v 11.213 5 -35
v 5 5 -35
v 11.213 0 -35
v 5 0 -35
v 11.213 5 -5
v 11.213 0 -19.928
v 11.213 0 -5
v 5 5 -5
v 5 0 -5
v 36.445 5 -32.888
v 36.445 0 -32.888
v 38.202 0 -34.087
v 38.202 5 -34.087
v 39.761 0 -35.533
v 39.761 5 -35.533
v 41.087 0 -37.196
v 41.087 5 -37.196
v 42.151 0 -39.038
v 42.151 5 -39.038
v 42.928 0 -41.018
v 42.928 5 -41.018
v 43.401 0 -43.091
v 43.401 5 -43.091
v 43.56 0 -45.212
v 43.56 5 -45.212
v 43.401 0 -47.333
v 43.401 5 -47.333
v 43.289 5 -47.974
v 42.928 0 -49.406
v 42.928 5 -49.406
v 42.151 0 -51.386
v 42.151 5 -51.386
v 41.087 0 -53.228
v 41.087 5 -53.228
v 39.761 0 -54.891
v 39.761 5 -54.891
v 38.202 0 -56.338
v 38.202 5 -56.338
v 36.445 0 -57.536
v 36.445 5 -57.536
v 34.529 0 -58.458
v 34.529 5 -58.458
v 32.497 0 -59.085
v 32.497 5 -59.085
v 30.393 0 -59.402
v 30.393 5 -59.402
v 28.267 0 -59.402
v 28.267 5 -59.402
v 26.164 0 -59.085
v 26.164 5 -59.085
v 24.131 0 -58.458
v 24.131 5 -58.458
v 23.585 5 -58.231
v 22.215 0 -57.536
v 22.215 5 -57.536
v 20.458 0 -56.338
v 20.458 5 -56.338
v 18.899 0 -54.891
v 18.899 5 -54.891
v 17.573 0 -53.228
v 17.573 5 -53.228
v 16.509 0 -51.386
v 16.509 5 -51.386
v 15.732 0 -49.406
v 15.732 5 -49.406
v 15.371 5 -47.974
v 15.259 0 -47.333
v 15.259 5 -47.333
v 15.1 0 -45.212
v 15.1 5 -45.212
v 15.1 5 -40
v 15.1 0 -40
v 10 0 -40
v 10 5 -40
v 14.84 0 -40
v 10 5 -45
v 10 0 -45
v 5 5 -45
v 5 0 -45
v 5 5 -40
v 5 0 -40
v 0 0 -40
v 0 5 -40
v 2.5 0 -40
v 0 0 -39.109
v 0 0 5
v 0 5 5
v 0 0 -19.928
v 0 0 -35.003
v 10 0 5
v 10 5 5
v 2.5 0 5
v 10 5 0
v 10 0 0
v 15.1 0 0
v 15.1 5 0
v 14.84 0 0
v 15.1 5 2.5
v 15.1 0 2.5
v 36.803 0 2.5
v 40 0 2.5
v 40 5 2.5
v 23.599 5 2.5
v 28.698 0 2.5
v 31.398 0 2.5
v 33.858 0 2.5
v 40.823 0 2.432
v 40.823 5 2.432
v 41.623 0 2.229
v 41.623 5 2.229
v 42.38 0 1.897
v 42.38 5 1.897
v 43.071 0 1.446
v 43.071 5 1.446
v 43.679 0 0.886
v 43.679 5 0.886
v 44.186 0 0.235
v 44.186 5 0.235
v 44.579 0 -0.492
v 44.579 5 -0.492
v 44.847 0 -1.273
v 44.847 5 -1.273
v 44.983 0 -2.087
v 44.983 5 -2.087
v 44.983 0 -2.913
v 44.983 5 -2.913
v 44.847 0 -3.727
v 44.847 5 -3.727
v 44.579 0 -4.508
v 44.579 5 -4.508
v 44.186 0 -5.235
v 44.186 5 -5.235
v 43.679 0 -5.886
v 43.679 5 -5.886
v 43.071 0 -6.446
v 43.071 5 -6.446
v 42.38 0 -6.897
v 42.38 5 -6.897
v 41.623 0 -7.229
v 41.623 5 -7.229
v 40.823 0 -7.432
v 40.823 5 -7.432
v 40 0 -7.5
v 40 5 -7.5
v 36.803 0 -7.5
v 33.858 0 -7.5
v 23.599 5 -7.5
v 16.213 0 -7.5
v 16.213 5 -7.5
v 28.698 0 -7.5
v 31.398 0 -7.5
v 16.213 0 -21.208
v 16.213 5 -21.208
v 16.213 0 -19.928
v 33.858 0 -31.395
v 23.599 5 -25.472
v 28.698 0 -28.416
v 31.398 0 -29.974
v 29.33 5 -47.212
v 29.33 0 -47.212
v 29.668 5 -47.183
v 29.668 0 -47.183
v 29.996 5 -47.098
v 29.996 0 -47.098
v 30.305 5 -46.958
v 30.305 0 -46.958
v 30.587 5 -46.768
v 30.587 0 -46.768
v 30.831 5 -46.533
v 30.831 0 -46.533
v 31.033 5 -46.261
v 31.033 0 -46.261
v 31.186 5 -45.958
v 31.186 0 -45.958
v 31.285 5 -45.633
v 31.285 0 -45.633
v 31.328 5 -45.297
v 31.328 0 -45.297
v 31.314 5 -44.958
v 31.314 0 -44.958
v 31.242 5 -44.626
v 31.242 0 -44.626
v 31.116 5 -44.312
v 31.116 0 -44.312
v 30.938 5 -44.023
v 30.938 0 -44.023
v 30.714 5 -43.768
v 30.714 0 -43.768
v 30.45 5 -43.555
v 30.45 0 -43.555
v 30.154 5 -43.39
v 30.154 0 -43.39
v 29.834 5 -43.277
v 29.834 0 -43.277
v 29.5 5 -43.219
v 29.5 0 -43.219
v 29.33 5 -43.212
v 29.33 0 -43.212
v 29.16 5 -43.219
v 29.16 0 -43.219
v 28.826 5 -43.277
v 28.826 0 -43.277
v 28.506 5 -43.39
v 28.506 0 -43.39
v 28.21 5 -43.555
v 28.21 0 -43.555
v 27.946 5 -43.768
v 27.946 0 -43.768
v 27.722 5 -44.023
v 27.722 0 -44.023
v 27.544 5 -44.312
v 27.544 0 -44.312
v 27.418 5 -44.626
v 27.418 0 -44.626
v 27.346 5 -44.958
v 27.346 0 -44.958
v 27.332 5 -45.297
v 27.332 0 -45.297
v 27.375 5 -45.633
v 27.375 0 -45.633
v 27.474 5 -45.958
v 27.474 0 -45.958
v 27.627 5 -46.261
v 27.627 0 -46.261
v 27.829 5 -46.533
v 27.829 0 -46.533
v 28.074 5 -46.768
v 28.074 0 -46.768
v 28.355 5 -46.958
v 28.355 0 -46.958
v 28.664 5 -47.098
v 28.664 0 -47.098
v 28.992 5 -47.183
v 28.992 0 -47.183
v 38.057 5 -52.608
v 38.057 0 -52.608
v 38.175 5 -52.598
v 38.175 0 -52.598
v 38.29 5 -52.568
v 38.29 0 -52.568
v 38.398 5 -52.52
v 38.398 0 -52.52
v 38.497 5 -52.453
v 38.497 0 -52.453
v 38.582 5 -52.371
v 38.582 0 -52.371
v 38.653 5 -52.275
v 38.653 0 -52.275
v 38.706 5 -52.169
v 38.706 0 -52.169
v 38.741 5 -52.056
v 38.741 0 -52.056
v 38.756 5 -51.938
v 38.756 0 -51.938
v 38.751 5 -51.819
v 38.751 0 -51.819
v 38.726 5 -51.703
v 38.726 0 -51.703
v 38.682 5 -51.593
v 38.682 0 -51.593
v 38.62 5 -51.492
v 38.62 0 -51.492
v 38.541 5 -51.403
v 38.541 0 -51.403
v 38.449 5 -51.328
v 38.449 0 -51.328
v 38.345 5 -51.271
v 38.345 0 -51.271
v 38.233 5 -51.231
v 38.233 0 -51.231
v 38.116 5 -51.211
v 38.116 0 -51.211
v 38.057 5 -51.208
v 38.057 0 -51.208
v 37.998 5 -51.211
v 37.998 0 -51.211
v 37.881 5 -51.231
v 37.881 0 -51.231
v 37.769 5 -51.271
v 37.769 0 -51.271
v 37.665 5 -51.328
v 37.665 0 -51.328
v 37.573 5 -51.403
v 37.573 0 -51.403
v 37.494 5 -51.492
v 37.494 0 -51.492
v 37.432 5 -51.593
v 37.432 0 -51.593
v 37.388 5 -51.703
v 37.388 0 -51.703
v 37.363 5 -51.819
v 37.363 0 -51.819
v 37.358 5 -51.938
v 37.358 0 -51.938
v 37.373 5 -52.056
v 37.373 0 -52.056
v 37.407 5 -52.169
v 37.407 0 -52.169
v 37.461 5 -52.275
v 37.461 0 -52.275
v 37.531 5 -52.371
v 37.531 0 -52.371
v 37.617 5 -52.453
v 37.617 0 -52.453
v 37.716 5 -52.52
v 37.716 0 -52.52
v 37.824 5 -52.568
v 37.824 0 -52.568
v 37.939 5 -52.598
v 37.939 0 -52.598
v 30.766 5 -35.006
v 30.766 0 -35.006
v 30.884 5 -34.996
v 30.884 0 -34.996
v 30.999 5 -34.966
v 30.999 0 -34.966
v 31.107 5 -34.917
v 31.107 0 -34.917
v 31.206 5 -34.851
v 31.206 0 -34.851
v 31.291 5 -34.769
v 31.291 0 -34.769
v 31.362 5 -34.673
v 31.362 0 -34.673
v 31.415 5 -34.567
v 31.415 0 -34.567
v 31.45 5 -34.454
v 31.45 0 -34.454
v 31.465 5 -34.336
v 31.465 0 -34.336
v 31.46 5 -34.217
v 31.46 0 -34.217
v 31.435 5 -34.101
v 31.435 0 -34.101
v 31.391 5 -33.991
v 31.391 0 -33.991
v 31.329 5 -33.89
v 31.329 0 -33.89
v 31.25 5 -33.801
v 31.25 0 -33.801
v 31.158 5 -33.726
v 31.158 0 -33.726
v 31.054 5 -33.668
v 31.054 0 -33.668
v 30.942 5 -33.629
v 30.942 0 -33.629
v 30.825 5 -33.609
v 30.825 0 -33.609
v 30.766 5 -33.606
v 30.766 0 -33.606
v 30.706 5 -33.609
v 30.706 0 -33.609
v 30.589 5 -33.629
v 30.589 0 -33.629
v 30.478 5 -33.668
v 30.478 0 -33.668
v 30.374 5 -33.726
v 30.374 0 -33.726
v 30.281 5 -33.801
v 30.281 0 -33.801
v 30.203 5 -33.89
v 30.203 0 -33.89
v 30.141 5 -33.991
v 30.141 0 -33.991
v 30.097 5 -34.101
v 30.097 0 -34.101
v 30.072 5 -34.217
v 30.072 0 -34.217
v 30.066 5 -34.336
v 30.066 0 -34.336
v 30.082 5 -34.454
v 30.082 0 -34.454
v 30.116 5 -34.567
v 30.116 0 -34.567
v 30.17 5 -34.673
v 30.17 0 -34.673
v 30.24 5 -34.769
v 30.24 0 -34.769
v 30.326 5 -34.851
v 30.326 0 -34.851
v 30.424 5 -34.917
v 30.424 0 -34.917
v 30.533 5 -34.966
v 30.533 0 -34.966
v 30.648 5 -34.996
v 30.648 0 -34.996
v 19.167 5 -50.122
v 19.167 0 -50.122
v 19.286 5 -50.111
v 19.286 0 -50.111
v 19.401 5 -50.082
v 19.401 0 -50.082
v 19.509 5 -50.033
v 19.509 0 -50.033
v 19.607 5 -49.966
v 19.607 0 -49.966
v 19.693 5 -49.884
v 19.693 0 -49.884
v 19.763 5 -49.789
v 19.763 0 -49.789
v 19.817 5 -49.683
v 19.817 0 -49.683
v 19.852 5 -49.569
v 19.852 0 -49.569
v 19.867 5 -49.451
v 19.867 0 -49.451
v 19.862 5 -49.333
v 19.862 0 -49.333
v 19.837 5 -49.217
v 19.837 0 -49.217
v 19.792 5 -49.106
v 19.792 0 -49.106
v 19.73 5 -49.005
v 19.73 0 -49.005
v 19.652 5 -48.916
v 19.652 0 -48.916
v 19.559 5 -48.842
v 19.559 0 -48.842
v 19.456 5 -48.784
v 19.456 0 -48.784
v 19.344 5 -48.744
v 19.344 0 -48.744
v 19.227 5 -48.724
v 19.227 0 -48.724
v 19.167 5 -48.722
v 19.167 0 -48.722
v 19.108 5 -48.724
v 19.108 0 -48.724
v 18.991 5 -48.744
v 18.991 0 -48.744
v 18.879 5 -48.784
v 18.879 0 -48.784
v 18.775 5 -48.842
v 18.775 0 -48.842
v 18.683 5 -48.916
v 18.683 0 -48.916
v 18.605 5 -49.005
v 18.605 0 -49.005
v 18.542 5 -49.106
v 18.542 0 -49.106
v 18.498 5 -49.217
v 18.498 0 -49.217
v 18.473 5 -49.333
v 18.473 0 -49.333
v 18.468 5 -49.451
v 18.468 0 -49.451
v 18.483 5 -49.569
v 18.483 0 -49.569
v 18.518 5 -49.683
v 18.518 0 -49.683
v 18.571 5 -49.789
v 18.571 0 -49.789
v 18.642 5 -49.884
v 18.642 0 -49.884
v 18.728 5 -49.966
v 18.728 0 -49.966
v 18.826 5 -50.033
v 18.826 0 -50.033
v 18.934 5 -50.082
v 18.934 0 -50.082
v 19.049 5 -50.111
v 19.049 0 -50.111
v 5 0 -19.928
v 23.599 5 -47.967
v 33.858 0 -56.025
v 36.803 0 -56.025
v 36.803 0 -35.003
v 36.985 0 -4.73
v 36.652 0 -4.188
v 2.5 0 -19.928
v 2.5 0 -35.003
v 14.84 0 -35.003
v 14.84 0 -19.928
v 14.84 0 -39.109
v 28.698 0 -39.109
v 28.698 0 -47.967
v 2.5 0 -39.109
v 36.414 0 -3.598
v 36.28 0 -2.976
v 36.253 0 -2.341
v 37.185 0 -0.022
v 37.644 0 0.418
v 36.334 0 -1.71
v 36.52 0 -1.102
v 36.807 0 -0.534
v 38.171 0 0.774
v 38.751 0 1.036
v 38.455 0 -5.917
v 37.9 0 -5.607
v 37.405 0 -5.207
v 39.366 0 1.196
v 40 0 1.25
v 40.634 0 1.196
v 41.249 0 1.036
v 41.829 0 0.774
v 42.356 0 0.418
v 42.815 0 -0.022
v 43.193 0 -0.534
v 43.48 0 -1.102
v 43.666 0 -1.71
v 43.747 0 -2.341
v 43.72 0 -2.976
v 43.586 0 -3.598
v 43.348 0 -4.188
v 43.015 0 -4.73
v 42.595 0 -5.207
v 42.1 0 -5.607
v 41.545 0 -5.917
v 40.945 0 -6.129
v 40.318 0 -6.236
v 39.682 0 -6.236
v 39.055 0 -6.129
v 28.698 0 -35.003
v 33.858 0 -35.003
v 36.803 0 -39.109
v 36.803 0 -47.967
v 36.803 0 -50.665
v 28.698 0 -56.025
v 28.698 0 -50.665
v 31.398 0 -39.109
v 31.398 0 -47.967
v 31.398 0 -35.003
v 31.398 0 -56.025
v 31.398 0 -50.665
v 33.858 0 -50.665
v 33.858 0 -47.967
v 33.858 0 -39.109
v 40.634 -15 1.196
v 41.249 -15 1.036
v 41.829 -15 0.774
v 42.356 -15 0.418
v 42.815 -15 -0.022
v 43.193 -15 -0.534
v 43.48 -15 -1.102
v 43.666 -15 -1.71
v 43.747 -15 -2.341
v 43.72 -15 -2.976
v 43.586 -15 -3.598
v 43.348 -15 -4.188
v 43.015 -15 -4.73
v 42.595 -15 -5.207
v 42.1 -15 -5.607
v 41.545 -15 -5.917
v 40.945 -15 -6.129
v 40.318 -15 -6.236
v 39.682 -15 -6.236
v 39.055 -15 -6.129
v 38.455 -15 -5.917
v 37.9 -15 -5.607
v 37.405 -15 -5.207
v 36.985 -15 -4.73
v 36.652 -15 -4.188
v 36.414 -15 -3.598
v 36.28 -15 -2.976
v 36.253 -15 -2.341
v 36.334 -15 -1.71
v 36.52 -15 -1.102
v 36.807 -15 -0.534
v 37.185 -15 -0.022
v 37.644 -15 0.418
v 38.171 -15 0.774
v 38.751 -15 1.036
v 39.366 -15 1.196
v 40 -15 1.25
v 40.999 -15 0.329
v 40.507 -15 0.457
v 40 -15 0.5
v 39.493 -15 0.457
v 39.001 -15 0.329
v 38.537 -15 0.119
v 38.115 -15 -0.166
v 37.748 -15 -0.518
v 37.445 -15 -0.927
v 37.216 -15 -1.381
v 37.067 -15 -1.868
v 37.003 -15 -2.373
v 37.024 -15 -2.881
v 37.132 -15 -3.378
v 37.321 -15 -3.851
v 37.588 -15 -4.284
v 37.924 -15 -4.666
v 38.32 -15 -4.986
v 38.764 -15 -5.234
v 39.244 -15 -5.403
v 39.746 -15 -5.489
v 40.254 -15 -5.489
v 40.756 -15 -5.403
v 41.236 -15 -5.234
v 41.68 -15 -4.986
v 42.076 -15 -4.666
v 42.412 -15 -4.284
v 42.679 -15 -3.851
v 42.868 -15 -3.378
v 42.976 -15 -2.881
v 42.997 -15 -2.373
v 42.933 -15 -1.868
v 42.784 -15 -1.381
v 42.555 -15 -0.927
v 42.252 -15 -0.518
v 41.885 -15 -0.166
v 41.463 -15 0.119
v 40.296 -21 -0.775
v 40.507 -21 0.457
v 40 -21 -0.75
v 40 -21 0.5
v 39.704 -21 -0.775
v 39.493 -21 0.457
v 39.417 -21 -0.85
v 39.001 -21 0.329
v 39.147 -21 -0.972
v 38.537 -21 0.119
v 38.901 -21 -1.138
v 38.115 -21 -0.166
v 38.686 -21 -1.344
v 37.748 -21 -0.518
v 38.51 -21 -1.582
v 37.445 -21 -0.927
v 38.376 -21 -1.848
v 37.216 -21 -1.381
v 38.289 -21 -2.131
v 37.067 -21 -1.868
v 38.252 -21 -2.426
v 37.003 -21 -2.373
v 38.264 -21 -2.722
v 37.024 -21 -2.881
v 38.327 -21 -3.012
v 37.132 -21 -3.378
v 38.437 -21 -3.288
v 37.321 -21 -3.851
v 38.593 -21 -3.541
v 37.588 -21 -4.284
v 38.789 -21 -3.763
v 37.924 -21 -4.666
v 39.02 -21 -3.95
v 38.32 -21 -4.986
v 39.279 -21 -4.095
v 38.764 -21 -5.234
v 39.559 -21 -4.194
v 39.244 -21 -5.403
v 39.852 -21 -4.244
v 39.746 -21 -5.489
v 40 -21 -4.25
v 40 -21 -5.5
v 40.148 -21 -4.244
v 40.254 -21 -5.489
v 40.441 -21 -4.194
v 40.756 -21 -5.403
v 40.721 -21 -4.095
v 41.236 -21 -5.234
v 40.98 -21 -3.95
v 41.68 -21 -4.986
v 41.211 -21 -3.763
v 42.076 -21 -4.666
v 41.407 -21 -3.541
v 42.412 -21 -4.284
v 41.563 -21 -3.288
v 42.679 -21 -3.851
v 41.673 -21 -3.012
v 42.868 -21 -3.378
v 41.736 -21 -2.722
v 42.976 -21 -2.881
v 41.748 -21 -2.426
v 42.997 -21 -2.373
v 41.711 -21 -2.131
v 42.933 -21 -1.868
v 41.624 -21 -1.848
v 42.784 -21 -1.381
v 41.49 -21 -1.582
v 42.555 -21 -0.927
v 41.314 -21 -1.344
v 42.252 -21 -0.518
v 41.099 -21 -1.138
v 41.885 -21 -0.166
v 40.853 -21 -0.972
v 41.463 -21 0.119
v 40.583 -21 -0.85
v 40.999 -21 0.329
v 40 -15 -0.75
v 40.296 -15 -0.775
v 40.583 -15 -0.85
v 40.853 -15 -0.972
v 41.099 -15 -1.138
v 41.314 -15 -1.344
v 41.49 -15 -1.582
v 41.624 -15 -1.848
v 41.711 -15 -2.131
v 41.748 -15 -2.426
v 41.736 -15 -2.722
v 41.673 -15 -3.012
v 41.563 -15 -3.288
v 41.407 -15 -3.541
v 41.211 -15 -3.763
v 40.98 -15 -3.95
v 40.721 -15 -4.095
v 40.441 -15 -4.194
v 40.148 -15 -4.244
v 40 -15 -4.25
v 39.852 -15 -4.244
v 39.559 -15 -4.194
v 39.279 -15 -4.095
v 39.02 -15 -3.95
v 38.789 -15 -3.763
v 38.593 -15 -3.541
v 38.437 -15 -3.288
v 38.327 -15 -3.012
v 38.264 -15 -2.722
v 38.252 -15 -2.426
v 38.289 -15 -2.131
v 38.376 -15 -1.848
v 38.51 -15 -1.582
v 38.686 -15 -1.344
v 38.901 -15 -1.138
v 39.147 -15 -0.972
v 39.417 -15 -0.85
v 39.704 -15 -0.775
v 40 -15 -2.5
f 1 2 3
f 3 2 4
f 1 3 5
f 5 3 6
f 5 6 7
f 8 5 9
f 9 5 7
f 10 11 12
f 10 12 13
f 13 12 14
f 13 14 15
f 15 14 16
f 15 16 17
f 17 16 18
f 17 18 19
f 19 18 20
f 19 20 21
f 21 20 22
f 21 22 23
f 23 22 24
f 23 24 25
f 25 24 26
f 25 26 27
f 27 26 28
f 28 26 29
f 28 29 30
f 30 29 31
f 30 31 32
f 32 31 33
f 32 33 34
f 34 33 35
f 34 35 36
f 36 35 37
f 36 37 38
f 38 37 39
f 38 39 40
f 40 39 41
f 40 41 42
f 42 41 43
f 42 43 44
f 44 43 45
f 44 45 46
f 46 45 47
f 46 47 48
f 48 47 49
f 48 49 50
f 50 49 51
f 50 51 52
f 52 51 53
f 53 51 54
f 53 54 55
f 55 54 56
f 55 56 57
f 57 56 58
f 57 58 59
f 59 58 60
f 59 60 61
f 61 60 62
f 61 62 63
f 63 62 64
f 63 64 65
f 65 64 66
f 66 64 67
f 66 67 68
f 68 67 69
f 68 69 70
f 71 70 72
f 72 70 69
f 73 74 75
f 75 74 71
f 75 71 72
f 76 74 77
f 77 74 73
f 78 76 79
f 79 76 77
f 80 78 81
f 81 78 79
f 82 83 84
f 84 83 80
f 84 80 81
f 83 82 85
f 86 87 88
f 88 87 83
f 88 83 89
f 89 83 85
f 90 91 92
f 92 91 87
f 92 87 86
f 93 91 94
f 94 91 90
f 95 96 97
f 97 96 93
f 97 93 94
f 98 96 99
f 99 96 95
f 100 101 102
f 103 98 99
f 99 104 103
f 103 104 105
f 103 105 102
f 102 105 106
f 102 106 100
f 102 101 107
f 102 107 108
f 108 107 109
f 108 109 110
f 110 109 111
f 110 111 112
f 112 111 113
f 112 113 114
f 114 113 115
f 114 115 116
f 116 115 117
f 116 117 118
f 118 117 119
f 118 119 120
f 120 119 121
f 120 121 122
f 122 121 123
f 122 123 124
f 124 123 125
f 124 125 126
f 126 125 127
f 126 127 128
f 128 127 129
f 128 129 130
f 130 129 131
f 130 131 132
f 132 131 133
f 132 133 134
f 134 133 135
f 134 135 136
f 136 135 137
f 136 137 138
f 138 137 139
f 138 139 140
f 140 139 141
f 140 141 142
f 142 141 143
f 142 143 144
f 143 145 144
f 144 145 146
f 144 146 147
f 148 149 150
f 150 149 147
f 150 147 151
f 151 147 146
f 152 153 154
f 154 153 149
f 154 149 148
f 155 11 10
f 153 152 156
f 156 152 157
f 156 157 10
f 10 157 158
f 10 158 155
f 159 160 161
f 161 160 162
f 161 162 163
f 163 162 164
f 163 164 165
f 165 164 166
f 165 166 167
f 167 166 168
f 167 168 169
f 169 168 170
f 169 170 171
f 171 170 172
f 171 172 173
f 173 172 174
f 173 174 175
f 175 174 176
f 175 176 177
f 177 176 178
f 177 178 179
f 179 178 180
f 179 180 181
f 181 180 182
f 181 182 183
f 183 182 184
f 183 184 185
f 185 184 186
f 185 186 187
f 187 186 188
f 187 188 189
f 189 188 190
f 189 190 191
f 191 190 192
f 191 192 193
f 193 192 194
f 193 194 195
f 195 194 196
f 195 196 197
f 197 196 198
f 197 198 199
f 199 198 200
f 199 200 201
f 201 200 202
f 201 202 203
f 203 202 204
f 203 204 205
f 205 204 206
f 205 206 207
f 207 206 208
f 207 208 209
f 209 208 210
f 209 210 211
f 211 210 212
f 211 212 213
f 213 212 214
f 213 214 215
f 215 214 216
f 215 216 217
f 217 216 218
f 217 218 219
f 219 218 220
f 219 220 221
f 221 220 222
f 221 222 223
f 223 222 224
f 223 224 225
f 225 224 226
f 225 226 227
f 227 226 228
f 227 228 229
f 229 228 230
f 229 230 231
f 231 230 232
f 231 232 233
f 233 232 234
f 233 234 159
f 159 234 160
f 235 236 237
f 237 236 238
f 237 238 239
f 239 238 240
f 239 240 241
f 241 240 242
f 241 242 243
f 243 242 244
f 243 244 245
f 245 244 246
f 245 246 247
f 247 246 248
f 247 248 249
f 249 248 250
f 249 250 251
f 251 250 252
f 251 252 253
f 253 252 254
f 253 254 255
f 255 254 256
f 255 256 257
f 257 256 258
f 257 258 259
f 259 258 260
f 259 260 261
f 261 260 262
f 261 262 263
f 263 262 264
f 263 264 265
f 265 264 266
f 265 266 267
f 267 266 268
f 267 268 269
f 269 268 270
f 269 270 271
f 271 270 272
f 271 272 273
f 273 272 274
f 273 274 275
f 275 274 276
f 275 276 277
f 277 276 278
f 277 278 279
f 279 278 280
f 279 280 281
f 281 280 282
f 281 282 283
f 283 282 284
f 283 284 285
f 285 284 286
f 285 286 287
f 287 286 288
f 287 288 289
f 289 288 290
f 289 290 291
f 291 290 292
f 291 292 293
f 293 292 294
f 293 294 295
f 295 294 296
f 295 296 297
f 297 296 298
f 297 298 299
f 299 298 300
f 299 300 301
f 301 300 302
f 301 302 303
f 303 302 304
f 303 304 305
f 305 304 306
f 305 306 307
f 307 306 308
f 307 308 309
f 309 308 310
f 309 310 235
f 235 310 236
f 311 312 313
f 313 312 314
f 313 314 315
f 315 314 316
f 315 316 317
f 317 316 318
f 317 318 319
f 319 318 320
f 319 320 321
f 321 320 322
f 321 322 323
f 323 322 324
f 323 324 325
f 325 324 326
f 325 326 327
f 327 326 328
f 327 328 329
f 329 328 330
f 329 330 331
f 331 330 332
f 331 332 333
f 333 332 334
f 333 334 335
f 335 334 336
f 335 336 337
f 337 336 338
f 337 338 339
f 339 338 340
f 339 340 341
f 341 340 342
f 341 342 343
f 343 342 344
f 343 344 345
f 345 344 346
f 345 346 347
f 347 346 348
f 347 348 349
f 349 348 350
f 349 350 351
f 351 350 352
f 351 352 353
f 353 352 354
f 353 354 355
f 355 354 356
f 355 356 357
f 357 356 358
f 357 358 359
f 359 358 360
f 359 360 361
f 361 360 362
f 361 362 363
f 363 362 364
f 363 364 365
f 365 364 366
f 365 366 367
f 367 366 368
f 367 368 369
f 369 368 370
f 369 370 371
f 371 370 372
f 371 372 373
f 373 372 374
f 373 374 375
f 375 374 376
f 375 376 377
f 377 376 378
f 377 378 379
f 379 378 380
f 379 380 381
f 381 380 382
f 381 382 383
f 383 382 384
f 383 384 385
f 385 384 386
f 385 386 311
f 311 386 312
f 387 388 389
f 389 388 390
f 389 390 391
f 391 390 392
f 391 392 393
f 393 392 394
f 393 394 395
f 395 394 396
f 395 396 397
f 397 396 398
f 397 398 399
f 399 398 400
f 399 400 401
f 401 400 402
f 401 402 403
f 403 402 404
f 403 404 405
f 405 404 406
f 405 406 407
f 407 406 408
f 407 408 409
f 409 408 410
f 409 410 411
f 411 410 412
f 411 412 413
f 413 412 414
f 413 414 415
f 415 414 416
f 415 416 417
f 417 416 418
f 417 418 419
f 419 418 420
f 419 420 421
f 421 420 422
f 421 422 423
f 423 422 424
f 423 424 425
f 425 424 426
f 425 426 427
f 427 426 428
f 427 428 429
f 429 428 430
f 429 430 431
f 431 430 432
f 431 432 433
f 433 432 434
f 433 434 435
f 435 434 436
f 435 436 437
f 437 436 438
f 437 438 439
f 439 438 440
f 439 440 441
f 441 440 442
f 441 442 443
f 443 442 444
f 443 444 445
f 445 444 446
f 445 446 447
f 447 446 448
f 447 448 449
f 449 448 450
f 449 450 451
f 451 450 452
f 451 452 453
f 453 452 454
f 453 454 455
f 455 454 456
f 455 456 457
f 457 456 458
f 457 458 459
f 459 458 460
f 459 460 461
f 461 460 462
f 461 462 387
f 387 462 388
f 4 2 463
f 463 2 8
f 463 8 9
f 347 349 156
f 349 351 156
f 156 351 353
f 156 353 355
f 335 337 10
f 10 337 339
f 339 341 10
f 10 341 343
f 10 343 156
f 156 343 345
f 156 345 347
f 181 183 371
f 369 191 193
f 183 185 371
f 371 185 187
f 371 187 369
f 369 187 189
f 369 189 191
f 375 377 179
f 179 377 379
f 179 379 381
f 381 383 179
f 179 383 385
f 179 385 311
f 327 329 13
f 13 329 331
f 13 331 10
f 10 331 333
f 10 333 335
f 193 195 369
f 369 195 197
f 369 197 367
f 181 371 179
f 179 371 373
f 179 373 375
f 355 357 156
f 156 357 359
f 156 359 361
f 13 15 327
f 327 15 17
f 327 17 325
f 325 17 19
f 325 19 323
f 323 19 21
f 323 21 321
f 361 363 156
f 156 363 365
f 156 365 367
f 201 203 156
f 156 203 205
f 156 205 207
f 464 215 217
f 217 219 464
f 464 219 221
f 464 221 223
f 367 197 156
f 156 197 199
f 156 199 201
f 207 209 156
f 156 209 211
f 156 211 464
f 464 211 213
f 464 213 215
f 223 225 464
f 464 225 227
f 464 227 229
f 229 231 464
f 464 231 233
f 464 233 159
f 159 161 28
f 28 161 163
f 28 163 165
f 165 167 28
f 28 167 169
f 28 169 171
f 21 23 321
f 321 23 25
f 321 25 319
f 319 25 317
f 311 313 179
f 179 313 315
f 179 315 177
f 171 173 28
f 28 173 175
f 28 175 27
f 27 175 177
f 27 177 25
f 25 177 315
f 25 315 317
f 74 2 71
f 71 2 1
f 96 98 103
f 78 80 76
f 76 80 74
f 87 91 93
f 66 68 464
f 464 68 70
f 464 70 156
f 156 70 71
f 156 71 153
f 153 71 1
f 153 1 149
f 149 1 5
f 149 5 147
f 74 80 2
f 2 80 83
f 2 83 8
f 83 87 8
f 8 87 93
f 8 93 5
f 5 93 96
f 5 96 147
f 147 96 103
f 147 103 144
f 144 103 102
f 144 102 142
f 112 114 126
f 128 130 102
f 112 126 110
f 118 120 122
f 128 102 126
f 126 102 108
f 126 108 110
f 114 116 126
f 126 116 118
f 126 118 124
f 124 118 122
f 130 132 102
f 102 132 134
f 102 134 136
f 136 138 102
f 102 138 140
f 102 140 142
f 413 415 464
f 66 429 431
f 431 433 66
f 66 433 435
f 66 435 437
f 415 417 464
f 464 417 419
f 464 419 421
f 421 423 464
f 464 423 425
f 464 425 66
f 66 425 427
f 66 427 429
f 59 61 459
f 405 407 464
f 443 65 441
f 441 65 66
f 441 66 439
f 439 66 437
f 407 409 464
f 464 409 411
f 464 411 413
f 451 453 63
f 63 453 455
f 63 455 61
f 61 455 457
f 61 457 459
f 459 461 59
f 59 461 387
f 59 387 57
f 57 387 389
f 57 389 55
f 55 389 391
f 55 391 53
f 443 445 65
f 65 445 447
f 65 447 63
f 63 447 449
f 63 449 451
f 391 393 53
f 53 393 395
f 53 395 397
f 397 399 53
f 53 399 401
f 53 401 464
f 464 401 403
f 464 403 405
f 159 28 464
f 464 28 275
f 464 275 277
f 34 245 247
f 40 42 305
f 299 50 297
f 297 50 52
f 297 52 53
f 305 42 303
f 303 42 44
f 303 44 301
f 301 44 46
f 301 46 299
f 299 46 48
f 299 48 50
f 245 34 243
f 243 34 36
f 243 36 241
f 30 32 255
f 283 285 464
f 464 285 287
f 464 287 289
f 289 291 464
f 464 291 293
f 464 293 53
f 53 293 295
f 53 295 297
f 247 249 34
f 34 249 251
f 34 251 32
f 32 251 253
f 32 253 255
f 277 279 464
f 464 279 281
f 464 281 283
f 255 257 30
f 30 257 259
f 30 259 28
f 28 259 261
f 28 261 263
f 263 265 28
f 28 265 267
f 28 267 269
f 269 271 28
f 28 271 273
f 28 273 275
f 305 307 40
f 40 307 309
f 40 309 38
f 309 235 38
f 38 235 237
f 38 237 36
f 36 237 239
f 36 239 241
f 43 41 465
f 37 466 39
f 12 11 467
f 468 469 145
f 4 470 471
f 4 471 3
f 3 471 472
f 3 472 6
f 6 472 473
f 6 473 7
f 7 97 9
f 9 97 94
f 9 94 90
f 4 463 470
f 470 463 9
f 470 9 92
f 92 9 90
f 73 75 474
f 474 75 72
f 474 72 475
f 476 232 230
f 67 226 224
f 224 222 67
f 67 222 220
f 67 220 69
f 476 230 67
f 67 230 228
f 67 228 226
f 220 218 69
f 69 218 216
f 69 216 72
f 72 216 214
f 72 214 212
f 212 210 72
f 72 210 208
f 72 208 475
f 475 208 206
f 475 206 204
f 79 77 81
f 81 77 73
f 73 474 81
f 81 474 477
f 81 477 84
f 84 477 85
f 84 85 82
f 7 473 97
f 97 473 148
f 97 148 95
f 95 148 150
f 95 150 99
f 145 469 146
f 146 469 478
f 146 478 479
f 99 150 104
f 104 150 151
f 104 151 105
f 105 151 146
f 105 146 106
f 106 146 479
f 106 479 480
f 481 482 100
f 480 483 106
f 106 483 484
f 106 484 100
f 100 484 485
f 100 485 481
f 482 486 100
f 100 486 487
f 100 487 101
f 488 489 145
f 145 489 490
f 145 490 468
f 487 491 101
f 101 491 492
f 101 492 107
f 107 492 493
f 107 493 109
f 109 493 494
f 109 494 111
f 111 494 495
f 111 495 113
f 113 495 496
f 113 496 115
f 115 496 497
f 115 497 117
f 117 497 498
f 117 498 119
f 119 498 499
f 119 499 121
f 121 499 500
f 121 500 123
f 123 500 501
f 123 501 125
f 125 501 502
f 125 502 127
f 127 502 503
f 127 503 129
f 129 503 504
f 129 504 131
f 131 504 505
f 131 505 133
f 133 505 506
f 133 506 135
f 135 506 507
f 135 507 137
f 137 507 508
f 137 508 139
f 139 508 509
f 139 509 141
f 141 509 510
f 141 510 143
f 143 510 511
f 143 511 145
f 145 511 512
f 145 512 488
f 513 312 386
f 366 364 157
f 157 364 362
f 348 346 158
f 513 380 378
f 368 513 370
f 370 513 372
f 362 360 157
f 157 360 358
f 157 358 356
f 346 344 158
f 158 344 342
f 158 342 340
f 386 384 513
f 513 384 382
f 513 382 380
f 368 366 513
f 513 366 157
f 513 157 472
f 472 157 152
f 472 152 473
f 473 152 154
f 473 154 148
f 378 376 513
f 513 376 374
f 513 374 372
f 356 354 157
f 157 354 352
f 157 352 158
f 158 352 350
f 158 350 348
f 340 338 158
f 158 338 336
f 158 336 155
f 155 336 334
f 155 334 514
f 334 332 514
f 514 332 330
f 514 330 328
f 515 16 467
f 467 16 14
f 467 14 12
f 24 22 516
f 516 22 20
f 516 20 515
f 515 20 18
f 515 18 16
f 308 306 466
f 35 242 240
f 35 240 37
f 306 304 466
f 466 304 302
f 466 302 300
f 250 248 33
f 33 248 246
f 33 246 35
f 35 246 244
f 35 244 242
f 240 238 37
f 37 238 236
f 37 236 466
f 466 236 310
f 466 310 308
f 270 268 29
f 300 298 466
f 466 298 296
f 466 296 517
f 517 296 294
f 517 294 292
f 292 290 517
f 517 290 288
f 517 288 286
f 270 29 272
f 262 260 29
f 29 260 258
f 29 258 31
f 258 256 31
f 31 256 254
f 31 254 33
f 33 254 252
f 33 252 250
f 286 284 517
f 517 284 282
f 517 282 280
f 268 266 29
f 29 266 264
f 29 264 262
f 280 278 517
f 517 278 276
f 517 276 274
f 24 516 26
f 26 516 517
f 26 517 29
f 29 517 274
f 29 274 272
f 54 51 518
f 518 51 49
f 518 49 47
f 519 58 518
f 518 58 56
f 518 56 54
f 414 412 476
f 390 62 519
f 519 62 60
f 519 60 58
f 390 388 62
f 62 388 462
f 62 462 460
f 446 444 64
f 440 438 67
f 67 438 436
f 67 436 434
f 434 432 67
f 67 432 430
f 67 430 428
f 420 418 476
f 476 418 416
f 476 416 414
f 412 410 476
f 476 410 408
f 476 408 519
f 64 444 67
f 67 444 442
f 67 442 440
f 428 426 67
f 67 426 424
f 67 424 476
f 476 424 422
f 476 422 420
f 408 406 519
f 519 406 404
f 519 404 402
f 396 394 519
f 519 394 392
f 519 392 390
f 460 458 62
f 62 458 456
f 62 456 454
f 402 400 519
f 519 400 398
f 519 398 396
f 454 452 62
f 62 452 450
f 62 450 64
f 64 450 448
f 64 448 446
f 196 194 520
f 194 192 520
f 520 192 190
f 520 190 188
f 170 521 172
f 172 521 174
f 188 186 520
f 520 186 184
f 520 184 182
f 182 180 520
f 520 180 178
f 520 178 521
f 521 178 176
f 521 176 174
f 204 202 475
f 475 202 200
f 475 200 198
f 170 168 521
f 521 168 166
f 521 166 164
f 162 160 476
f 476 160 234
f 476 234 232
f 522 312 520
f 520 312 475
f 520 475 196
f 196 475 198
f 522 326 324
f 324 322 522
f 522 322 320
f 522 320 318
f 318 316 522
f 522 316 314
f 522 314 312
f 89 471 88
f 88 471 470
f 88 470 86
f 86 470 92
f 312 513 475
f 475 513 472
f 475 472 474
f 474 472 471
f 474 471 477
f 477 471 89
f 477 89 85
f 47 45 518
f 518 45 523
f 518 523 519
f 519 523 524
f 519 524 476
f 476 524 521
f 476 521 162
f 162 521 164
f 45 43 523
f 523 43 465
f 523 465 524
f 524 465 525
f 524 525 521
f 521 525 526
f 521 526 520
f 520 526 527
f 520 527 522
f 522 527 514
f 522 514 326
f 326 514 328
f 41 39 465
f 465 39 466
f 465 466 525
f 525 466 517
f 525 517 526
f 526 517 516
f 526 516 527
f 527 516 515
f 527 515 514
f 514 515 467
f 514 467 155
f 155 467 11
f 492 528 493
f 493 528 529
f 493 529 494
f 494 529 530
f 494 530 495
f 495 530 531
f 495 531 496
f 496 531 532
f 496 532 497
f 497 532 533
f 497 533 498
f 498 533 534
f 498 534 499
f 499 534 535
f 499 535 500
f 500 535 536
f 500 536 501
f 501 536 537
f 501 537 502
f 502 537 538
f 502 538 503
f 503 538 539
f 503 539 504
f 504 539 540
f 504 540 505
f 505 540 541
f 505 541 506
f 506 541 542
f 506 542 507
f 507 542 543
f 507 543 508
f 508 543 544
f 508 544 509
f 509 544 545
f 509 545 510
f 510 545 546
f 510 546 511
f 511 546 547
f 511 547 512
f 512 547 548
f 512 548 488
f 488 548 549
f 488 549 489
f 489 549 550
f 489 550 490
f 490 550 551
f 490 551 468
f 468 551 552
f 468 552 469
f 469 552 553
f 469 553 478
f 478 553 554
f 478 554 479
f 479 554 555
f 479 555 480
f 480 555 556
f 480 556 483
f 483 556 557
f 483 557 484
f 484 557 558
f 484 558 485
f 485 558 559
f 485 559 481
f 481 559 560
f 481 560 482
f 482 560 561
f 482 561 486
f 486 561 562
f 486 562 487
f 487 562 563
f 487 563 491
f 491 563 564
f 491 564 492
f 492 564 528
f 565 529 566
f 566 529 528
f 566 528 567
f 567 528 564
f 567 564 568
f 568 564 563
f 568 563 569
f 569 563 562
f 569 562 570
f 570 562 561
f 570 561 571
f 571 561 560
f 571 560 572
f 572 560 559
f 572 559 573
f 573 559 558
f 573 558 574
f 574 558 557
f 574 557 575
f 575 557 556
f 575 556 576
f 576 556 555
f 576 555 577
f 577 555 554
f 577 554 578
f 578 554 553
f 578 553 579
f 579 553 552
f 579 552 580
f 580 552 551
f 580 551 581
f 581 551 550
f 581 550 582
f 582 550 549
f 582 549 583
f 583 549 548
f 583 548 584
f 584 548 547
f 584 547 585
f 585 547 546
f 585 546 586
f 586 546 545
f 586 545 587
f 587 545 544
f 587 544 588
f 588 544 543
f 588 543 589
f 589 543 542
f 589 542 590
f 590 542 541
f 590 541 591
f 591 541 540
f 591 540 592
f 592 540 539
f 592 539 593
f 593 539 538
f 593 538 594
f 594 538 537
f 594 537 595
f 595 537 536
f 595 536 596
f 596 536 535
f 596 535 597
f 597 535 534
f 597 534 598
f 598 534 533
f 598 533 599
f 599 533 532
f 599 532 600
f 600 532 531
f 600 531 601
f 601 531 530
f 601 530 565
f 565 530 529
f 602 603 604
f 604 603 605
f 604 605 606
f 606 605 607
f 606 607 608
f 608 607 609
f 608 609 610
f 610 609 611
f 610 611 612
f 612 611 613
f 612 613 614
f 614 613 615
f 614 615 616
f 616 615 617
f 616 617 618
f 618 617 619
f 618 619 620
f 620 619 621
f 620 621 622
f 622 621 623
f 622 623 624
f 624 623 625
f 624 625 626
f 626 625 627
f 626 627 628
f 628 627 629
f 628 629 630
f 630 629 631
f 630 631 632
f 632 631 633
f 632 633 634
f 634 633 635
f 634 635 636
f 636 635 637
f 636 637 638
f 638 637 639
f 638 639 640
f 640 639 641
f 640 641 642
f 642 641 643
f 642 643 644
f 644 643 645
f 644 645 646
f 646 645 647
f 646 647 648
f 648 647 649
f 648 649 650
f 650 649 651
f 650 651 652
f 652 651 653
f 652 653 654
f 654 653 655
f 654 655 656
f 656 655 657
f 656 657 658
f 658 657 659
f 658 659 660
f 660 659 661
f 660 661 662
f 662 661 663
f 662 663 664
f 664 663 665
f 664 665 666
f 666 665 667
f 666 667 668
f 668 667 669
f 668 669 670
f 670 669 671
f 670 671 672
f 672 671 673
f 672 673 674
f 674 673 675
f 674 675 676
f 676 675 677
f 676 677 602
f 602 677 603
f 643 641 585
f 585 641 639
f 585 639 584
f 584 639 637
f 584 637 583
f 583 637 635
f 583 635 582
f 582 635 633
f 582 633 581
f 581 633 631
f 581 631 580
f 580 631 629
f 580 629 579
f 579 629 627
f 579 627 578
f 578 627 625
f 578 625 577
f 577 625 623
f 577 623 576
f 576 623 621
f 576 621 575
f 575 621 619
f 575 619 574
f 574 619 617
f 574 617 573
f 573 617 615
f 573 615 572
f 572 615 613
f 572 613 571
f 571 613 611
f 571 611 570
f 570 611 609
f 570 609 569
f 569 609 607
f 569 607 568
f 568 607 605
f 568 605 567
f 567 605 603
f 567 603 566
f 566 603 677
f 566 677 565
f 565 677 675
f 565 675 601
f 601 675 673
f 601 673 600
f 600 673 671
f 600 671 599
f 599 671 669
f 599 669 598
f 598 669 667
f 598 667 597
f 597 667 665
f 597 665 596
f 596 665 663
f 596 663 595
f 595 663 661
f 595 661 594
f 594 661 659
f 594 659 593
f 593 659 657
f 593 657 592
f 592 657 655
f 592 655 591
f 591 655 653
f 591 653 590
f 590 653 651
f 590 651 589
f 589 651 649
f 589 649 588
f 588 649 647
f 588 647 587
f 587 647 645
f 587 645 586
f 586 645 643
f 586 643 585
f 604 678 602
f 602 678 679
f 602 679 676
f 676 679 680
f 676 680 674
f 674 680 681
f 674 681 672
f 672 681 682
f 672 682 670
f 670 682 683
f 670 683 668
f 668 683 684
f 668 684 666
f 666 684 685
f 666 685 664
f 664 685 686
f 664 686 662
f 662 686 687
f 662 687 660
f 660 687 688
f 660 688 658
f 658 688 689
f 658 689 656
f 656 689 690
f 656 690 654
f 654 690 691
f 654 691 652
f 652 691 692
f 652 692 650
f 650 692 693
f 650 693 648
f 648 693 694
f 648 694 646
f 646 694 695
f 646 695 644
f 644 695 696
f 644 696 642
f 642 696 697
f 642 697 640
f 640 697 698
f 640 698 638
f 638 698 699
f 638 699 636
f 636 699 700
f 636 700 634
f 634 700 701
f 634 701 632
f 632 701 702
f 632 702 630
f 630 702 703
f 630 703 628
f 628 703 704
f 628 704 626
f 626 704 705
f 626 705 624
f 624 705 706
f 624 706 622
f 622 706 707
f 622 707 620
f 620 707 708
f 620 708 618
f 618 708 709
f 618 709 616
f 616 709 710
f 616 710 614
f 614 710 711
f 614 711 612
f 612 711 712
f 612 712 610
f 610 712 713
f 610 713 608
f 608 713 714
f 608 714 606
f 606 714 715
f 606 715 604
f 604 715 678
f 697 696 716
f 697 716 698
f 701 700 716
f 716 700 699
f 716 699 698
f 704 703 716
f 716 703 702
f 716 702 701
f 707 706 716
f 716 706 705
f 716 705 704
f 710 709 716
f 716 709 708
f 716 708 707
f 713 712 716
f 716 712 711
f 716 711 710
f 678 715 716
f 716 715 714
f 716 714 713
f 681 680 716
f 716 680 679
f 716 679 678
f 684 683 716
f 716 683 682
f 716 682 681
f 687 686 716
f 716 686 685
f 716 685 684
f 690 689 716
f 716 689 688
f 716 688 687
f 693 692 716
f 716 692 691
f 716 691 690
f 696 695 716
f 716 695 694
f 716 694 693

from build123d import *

# Parameters (mm, degrees)
SKETCH2_W           = 6.21325809
SKETCH2_H           = 30
SKETCH2_R           = 0.7
SKETCH2_R_2         = 2
BOSS_EXTRUDE1_DEPTH = 5
SKETCH3_R           = 3.75
BOSS_EXTRUDE2_DEPTH = 20
SKETCH4_R           = 3
SKETCH4_R_2         = 1.75
BOSS_EXTRUDE3_DEPTH = 6


with BuildPart() as part:
    # Sketch2 → Boss-Extrude1 (new body)
    with BuildSketch(Plane(origin=(0, 0, 0), x_dir=(1, 0, 0), z_dir=(0, 1, 0))):
        with BuildLine():
            Line((16.21325809, 7.5), (16.21325809, 21.207579156))
            Line((16.21325809, 21.207579156), (36.445096698, 32.888436623))
            ThreePointArc((36.445096698, 32.888436623), (36.445096698, 57.535631272), (15.1, 45.212033947))
            Line((15.1, 45.212033947), (15.1, 40))
            Line((15.1, 40), (10, 40))
            Line((10, 40), (10, 45))
            Line((10, 45), (5, 45))
            Line((5, 45), (5, 40))
            Line((5, 40), (0, 40))
            Line((0, 40), (0, -5))
            Line((0, -5), (10, -5))
            Line((10, -5), (10, 0))
            Line((10, 0), (15.1, 0))
            Line((15.1, 0), (15.1, -2.5))
            Line((15.1, -2.5), (40, -2.5))
            ThreePointArc((40, -2.5), (45, 2.5), (40, 7.5))
            Line((40, 7.5), (16.21325809, 7.5))
        make_face()
        with Locations((8.106629045, 20)):
            Rectangle(SKETCH2_W, SKETCH2_H, mode=Mode.SUBTRACT)
        with Locations(Location((19.167389608, 49.421551703, 0), (0, 0, 270))):
            Circle(SKETCH2_R, mode=Mode.SUBTRACT)
        with Locations(Location((30.76585258, 34.306140472, 0), (0, 0, 270))):
            Circle(SKETCH2_R, mode=Mode.SUBTRACT)
        with Locations(Location((29.330064466, 45.212033947, 0), (0, 0, 270))):
            Circle(SKETCH2_R_2, mode=Mode.SUBTRACT)
        with Locations(Location((38.056951209, 51.908409667, 0), (0, 0, 270))):
            Circle(SKETCH2_R, mode=Mode.SUBTRACT)
    extrude(amount=BOSS_EXTRUDE1_DEPTH)

    # Sketch3 → Boss-Extrude2 (add)
    with BuildSketch(Plane(origin=(0, 5, 0), x_dir=(1, 0, 0), z_dir=(0, 1, 0))):
        with Locations(Location((40, 2.5, 0), (0, 0, 270))):
            Circle(SKETCH3_R)
    extrude(amount=-BOSS_EXTRUDE2_DEPTH)

    # Sketch4 → Boss-Extrude3 (add)
    with BuildSketch(Plane(origin=(0, -15, 0), x_dir=(-1, 0, 0), z_dir=(0, -1, 0))):
        with Locations(Location((-40, 2.5, 0), (0, 0, 270))):
            Circle(SKETCH4_R)
        with Locations(Location((-40, 2.5, 0), (0, 0, 90))):
            Circle(SKETCH4_R_2, mode=Mode.SUBTRACT)
    extrude(amount=BOSS_EXTRUDE3_DEPTH)


solid = part.part
